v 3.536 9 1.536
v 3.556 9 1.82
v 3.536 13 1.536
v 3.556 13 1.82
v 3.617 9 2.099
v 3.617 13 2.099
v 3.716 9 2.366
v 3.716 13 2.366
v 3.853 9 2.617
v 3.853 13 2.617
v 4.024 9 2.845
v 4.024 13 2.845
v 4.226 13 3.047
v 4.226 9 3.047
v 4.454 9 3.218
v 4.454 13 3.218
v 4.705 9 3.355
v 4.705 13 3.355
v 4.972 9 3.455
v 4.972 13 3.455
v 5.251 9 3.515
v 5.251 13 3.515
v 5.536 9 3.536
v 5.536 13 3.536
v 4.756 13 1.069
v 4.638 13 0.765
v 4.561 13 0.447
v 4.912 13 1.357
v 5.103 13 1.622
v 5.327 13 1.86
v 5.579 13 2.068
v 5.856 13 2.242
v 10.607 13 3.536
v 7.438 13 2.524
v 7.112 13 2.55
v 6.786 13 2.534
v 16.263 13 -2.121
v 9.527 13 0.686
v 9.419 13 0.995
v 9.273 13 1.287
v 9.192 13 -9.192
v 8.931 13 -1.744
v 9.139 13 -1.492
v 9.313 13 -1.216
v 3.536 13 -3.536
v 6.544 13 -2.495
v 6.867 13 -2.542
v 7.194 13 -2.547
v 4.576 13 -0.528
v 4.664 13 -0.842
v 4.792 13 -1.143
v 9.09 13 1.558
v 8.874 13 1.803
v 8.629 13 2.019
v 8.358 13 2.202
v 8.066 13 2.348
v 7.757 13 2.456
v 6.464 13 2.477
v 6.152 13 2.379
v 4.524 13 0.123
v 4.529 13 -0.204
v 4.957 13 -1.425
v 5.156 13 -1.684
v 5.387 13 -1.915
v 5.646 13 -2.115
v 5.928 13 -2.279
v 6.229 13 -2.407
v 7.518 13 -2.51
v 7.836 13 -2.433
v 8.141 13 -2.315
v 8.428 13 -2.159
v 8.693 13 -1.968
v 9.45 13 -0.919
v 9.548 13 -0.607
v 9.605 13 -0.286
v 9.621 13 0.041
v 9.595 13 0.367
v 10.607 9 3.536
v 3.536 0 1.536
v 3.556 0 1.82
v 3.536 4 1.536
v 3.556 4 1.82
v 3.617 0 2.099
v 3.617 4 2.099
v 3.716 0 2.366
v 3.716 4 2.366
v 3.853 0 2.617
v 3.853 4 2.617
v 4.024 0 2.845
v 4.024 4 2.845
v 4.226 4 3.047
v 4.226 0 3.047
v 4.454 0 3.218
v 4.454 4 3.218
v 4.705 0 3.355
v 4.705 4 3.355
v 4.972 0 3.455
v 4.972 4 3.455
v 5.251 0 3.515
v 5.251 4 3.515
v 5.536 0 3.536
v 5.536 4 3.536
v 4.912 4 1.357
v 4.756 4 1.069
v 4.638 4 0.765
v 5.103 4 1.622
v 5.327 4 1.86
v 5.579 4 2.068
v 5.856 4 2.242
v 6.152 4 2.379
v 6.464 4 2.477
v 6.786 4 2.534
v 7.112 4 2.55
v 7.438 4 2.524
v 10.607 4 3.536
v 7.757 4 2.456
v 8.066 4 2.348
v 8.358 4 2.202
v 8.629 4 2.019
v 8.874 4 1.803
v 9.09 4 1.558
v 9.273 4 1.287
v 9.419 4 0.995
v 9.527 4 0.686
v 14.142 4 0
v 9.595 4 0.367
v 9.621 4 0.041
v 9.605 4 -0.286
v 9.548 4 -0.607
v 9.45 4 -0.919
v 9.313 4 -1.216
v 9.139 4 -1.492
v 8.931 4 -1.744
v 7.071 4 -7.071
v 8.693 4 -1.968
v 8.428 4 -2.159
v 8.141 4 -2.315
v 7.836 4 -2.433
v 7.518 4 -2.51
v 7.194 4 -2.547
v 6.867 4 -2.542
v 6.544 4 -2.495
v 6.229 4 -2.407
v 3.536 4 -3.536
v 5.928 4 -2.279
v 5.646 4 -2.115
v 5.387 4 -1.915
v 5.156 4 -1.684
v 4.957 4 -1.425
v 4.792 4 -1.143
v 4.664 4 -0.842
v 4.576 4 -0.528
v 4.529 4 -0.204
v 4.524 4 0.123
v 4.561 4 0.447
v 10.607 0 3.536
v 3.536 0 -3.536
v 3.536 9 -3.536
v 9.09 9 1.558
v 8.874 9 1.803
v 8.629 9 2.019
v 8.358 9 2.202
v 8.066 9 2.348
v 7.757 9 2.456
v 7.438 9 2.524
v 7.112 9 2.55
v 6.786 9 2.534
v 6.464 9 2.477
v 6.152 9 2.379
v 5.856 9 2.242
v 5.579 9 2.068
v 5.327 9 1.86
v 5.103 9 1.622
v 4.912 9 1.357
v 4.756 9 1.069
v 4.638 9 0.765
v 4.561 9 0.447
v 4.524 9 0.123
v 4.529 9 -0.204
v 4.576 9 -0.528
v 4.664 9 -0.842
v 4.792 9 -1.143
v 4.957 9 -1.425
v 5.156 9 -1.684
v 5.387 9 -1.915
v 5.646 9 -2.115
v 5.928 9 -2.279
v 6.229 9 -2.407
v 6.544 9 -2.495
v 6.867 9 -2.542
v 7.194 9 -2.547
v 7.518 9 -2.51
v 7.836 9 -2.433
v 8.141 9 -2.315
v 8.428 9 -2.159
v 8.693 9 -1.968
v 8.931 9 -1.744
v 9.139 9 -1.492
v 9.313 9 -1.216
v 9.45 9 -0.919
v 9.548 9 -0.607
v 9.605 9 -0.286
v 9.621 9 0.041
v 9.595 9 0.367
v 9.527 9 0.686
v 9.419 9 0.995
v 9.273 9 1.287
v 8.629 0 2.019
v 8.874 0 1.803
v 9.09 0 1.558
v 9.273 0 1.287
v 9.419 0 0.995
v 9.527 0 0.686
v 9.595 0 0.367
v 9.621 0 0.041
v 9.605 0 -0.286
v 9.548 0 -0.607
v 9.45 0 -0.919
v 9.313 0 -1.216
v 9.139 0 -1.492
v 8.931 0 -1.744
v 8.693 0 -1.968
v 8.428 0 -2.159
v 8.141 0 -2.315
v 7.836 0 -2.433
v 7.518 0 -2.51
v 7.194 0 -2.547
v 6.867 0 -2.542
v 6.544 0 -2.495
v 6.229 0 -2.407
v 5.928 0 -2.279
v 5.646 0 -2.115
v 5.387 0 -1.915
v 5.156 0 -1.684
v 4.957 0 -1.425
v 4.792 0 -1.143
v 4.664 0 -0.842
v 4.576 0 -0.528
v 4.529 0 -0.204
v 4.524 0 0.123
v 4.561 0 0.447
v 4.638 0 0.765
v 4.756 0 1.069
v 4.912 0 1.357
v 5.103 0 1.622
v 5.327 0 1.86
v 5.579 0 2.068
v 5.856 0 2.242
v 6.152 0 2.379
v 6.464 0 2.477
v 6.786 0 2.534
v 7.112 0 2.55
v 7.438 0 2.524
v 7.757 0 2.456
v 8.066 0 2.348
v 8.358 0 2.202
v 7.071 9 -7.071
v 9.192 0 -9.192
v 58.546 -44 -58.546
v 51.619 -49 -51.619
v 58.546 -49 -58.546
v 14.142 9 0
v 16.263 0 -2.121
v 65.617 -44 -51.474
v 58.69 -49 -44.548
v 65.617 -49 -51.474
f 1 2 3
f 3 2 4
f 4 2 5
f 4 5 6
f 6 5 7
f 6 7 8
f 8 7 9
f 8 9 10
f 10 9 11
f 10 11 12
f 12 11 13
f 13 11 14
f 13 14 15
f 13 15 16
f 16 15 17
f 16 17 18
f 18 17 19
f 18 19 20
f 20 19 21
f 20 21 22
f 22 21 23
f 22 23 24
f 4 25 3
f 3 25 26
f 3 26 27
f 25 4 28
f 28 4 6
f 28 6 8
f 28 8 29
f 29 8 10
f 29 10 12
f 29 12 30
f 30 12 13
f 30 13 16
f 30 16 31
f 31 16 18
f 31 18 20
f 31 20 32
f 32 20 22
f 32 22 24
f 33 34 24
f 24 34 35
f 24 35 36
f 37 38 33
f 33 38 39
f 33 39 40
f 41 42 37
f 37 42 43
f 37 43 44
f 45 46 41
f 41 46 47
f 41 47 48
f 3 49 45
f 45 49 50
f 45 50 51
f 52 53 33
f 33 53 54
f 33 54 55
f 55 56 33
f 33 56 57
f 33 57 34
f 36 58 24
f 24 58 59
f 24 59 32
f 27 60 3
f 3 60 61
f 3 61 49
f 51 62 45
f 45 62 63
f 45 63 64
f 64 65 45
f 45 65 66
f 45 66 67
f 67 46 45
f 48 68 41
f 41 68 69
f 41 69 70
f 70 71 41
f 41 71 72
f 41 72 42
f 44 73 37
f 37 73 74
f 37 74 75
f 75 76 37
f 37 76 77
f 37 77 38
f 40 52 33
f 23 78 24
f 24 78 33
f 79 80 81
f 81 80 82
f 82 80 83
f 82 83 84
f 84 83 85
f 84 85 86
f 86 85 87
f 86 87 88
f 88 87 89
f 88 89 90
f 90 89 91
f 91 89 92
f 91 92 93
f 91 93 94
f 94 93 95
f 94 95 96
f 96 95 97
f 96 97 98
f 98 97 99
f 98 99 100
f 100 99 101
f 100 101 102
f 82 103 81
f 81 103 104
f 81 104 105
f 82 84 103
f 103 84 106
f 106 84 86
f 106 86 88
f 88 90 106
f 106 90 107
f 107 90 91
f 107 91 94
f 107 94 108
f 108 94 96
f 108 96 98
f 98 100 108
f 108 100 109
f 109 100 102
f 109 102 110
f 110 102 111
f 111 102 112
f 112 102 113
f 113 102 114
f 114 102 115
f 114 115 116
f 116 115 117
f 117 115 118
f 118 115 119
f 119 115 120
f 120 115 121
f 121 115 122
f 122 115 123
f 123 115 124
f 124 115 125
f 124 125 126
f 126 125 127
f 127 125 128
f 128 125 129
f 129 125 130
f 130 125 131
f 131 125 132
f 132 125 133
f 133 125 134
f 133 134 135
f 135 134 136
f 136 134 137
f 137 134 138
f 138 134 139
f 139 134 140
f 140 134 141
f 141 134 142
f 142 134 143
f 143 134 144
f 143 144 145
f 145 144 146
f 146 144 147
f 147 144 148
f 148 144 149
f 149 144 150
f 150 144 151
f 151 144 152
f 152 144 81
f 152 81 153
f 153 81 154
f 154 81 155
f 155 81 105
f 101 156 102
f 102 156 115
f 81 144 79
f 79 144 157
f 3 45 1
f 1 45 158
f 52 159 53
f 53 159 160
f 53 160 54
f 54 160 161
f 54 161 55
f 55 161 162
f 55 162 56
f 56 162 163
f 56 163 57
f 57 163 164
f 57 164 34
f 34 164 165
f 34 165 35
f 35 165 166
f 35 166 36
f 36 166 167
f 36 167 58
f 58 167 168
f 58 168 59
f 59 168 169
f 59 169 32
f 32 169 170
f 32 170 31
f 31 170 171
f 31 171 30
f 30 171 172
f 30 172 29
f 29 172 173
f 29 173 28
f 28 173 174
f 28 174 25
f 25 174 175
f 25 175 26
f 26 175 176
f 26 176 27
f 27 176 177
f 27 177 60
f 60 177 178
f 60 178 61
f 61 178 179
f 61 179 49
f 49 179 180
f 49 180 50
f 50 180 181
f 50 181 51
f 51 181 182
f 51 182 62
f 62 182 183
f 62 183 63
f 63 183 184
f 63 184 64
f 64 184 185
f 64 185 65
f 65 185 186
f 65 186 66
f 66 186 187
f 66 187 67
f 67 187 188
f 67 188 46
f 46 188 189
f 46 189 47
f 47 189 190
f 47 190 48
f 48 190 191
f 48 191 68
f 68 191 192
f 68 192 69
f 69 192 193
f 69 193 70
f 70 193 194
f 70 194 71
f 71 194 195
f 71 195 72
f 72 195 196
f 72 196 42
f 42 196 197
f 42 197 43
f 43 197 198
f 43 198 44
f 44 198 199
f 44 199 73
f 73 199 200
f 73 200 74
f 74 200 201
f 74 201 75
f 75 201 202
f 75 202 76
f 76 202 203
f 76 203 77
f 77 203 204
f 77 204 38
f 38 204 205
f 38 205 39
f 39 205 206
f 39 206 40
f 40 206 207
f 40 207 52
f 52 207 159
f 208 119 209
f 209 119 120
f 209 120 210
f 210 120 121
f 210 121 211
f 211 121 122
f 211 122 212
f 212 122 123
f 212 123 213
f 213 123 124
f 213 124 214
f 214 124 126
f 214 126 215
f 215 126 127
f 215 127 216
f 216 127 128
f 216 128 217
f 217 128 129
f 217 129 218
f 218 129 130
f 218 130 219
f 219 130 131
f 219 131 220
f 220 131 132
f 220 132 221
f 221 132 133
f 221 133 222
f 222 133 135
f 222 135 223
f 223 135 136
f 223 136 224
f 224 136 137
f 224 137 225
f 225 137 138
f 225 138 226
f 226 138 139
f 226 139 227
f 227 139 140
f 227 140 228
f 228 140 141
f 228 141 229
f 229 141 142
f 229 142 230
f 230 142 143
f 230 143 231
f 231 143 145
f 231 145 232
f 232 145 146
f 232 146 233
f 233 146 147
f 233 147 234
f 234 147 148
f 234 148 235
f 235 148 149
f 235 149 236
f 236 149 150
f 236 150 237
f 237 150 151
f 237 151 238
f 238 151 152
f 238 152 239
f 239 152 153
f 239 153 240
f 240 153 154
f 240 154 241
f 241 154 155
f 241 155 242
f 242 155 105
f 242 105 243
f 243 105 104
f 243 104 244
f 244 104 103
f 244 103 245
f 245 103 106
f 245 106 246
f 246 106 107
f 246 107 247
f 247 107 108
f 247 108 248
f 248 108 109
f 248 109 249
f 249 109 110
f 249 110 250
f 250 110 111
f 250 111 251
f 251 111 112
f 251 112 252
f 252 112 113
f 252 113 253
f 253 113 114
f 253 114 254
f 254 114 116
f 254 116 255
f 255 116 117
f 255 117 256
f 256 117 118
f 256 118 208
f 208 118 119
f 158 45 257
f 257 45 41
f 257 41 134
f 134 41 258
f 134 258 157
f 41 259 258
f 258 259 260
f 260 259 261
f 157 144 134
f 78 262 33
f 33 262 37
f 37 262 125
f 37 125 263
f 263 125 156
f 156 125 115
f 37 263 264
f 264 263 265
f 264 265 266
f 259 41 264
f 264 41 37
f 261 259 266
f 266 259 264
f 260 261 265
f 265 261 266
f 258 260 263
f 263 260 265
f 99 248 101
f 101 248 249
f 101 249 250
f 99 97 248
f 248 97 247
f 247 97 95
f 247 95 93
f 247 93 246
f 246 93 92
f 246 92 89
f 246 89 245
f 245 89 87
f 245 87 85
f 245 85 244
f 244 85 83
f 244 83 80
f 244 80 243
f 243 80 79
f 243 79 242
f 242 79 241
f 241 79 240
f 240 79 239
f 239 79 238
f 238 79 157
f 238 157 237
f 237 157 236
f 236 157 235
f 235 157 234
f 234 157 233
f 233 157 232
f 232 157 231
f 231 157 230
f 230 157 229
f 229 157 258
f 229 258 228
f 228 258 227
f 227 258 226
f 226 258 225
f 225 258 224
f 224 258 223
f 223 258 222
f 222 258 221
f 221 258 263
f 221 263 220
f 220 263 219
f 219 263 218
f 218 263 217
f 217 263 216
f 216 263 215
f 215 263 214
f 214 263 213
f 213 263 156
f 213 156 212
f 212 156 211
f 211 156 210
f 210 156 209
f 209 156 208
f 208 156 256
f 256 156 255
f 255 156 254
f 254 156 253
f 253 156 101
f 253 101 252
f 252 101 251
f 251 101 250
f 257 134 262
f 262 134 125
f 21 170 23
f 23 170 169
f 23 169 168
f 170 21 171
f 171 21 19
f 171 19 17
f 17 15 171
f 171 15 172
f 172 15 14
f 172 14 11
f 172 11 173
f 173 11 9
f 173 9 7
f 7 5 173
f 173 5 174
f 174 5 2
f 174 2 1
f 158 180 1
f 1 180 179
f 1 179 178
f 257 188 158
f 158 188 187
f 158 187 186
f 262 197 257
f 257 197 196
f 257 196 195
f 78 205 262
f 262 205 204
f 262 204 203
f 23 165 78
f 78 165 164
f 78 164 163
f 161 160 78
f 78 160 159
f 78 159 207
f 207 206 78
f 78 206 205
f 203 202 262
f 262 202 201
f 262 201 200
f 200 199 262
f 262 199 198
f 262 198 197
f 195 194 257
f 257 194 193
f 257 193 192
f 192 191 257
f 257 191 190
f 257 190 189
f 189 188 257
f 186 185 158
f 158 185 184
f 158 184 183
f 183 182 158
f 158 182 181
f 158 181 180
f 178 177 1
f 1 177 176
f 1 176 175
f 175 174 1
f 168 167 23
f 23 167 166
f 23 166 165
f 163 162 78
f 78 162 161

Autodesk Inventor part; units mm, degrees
ref_plane "XZ Plane" through (0, 0, 0) normal (0, 1, 0) x (-1, 0, 0)
ref_plane "Work Plane1" through (0, 0, 0) normal (0.7071, 0, 0.7071) x (0, -1, 0)
sketch "Sketch1" plane through (0, 0, 0) normal (0.7071, 0, 0.7071) x (0, -1, 0)
  line L0 (-9, 0) -> (-9, 10)
  line L1 (-9, 10) -> (-4, 10)
  line L2 (-4, 10) -> (-4, 0)
  line L3 (-4, 0) -> (0, 0)
  line L4 (0, 0) -> (0, 13)
  line L5 (0, 13) -> (49, 73)
  line L6 (49, 73) -> (49, 82.7959)
  line L7 (49, 82.7959) -> (44, 82.7959)
  line L8 (44, 82.7959) -> (-13, 13)
  line L9 (-13, 13) -> (-13, 0)
  line L10 (-13, 0) -> (-9, 0)
  line L11 (0, -16.5592) -> (0, 99.3551) projected
  line L12 (0, 0) -> (-5.3698, 0) construction
  dimension "d0" = 4
  dimension "d1" = 4
  dimension "d2" = 5
  dimension "d3" = 10
  dimension "d4" = 3
  dimension "d5" = 60
  dimension "d6" = 5
  dimension "d8" = 53
extrude "Extrusion1" add sketch "Sketch1" along normal blind 10
sketch "Sketch2" plane through (0, 13, 0) normal (0, 1, 0) x (0.7071, 0, 0.7071)
  circle A0 centre (5, 5) radius 2.55
  line L0 (0, 0) -> (0, 10) projected
  line L1 (0, 5) -> (5, 0)
  line L2 (0, 0) -> (10, 0) projected
  line L3 (5, 0) -> (10, 5)
  line L4 (10, 13) -> (10, 0) projected
  line L5 (2.5, 2.5) -> (5, 5) construction
  line L6 (5, 5) -> (7.5, 2.5) construction
  dimension "d11" = 5.1
  dimension "d12" = 45
  dimension "d13" = 45
extrude "Extrusion2" cut sketch "Sketch2" against normal through all
fillet "Fillet1" radius 2 2 edges at (3.5355, 2, 3.5355) (3.5355, 11, 3.5355)
properties part number "Foot thing"
